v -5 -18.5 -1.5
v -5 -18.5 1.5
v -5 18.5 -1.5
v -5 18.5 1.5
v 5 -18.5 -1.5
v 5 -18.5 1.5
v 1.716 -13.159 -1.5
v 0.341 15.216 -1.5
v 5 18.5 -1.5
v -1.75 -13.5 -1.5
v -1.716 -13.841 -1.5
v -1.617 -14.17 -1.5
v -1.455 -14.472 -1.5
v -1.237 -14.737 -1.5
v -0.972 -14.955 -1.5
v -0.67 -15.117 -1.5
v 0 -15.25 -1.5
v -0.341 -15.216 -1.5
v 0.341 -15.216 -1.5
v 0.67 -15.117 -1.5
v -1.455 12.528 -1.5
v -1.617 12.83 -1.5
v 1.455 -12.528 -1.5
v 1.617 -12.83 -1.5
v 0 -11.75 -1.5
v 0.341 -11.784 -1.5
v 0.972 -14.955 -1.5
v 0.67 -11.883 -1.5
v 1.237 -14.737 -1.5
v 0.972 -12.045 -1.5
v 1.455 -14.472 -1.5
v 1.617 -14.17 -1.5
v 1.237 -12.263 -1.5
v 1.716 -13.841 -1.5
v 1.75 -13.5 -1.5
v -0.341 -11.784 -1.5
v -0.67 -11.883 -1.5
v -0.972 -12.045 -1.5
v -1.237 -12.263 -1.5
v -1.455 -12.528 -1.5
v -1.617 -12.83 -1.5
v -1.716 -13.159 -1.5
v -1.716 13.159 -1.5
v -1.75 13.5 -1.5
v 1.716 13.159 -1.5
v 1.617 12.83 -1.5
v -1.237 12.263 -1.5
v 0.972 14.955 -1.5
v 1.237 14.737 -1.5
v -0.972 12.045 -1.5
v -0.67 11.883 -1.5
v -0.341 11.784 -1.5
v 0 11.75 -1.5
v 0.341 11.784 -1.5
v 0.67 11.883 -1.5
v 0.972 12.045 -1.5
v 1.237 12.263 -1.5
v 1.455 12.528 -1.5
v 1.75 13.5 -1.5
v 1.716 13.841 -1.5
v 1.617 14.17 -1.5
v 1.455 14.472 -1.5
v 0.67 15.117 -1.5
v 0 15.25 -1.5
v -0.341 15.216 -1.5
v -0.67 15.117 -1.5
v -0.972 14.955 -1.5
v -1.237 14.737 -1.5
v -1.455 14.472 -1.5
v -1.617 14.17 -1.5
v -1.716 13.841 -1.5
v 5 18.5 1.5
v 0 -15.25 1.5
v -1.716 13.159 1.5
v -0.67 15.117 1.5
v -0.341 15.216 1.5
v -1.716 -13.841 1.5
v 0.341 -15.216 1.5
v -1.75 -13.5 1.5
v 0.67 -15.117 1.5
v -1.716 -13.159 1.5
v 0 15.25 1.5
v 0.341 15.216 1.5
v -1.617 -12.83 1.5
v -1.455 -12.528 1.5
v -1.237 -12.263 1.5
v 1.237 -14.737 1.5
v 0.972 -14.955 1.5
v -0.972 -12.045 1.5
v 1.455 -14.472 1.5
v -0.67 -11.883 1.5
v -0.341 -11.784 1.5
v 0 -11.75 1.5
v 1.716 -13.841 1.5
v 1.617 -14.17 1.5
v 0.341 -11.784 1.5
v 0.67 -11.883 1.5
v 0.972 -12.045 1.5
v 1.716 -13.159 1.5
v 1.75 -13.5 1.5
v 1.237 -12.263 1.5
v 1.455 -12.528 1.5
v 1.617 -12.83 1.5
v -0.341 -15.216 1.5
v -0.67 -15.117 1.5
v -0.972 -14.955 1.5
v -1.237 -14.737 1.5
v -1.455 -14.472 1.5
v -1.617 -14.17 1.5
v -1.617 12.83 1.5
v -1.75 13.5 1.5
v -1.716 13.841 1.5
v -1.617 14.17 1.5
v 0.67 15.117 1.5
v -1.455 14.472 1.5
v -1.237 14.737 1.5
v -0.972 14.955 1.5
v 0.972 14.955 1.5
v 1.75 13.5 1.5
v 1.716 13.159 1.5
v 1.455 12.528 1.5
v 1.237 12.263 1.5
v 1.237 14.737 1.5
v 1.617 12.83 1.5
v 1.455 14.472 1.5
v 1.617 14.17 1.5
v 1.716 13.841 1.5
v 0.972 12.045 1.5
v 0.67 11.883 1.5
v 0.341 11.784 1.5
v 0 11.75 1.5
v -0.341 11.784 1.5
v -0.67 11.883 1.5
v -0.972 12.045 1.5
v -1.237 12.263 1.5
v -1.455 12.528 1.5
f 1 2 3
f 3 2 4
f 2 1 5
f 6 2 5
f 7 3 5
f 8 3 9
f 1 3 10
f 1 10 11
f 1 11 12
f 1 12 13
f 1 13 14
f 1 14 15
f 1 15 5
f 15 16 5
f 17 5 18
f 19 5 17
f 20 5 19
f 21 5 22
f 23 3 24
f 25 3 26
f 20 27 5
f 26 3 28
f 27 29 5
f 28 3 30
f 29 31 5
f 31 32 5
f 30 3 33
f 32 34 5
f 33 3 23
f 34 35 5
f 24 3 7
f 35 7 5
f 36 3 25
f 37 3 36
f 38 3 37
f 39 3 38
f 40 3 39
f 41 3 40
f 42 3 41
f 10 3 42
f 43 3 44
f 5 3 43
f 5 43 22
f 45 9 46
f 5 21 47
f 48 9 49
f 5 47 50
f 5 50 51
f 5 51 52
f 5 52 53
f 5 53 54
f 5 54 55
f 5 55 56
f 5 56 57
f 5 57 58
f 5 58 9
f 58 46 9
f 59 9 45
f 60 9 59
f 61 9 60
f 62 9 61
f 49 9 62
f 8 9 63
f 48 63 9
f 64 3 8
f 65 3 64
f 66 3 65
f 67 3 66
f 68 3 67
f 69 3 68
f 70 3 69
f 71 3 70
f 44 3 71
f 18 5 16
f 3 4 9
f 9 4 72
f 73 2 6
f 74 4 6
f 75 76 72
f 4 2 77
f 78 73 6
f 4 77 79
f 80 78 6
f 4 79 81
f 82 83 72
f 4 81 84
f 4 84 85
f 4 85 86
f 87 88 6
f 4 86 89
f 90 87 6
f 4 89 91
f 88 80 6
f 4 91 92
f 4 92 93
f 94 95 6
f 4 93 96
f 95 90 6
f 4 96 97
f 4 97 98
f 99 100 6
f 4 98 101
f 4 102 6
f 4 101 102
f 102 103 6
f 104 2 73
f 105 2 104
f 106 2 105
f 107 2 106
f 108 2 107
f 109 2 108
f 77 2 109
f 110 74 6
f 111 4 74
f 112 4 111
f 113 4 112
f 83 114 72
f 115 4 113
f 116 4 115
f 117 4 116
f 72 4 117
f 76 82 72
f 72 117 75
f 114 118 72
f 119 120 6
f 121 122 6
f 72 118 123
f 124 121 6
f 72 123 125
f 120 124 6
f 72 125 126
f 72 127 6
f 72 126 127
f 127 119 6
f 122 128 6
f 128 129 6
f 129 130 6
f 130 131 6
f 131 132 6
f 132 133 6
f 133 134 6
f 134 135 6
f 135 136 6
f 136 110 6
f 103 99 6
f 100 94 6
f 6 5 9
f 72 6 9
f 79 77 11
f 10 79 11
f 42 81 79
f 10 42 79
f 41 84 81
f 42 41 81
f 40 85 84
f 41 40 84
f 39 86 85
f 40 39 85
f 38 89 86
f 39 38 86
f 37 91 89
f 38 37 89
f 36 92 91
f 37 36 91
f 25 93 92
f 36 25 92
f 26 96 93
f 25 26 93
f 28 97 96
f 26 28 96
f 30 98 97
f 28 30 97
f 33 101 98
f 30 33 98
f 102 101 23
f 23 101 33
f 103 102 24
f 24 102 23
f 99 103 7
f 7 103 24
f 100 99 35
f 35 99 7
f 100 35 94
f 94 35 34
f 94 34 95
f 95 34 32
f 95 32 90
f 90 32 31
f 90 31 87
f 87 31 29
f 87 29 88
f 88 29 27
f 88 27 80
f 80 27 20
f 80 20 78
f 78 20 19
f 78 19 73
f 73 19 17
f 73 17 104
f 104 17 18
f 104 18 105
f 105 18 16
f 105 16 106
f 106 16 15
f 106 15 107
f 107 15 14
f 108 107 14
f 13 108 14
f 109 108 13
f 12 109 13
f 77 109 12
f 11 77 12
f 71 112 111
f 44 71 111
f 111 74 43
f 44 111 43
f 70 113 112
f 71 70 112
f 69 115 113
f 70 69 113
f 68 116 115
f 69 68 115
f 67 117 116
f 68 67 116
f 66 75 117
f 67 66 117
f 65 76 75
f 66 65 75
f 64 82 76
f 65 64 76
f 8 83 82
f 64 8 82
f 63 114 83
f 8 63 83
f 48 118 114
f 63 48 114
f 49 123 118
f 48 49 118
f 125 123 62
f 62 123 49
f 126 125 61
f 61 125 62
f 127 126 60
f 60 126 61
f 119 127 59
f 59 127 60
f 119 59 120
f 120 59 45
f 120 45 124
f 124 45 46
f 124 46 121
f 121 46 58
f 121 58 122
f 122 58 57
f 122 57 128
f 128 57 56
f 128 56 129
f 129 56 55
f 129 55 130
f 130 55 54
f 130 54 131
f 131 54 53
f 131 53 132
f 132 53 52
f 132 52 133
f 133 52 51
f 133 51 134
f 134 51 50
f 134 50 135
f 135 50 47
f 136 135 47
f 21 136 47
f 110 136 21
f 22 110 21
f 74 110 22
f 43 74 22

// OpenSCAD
$fn=32;

difference() {
  cube([10, 34+3, 3], center=true);
  translate([0, -13.5, 0]) cylinder(r=3.5/2, h=10, center=true);
  translate([0, 13.5, 0]) cylinder(r=3.5/2, h=10, center=true);
}
